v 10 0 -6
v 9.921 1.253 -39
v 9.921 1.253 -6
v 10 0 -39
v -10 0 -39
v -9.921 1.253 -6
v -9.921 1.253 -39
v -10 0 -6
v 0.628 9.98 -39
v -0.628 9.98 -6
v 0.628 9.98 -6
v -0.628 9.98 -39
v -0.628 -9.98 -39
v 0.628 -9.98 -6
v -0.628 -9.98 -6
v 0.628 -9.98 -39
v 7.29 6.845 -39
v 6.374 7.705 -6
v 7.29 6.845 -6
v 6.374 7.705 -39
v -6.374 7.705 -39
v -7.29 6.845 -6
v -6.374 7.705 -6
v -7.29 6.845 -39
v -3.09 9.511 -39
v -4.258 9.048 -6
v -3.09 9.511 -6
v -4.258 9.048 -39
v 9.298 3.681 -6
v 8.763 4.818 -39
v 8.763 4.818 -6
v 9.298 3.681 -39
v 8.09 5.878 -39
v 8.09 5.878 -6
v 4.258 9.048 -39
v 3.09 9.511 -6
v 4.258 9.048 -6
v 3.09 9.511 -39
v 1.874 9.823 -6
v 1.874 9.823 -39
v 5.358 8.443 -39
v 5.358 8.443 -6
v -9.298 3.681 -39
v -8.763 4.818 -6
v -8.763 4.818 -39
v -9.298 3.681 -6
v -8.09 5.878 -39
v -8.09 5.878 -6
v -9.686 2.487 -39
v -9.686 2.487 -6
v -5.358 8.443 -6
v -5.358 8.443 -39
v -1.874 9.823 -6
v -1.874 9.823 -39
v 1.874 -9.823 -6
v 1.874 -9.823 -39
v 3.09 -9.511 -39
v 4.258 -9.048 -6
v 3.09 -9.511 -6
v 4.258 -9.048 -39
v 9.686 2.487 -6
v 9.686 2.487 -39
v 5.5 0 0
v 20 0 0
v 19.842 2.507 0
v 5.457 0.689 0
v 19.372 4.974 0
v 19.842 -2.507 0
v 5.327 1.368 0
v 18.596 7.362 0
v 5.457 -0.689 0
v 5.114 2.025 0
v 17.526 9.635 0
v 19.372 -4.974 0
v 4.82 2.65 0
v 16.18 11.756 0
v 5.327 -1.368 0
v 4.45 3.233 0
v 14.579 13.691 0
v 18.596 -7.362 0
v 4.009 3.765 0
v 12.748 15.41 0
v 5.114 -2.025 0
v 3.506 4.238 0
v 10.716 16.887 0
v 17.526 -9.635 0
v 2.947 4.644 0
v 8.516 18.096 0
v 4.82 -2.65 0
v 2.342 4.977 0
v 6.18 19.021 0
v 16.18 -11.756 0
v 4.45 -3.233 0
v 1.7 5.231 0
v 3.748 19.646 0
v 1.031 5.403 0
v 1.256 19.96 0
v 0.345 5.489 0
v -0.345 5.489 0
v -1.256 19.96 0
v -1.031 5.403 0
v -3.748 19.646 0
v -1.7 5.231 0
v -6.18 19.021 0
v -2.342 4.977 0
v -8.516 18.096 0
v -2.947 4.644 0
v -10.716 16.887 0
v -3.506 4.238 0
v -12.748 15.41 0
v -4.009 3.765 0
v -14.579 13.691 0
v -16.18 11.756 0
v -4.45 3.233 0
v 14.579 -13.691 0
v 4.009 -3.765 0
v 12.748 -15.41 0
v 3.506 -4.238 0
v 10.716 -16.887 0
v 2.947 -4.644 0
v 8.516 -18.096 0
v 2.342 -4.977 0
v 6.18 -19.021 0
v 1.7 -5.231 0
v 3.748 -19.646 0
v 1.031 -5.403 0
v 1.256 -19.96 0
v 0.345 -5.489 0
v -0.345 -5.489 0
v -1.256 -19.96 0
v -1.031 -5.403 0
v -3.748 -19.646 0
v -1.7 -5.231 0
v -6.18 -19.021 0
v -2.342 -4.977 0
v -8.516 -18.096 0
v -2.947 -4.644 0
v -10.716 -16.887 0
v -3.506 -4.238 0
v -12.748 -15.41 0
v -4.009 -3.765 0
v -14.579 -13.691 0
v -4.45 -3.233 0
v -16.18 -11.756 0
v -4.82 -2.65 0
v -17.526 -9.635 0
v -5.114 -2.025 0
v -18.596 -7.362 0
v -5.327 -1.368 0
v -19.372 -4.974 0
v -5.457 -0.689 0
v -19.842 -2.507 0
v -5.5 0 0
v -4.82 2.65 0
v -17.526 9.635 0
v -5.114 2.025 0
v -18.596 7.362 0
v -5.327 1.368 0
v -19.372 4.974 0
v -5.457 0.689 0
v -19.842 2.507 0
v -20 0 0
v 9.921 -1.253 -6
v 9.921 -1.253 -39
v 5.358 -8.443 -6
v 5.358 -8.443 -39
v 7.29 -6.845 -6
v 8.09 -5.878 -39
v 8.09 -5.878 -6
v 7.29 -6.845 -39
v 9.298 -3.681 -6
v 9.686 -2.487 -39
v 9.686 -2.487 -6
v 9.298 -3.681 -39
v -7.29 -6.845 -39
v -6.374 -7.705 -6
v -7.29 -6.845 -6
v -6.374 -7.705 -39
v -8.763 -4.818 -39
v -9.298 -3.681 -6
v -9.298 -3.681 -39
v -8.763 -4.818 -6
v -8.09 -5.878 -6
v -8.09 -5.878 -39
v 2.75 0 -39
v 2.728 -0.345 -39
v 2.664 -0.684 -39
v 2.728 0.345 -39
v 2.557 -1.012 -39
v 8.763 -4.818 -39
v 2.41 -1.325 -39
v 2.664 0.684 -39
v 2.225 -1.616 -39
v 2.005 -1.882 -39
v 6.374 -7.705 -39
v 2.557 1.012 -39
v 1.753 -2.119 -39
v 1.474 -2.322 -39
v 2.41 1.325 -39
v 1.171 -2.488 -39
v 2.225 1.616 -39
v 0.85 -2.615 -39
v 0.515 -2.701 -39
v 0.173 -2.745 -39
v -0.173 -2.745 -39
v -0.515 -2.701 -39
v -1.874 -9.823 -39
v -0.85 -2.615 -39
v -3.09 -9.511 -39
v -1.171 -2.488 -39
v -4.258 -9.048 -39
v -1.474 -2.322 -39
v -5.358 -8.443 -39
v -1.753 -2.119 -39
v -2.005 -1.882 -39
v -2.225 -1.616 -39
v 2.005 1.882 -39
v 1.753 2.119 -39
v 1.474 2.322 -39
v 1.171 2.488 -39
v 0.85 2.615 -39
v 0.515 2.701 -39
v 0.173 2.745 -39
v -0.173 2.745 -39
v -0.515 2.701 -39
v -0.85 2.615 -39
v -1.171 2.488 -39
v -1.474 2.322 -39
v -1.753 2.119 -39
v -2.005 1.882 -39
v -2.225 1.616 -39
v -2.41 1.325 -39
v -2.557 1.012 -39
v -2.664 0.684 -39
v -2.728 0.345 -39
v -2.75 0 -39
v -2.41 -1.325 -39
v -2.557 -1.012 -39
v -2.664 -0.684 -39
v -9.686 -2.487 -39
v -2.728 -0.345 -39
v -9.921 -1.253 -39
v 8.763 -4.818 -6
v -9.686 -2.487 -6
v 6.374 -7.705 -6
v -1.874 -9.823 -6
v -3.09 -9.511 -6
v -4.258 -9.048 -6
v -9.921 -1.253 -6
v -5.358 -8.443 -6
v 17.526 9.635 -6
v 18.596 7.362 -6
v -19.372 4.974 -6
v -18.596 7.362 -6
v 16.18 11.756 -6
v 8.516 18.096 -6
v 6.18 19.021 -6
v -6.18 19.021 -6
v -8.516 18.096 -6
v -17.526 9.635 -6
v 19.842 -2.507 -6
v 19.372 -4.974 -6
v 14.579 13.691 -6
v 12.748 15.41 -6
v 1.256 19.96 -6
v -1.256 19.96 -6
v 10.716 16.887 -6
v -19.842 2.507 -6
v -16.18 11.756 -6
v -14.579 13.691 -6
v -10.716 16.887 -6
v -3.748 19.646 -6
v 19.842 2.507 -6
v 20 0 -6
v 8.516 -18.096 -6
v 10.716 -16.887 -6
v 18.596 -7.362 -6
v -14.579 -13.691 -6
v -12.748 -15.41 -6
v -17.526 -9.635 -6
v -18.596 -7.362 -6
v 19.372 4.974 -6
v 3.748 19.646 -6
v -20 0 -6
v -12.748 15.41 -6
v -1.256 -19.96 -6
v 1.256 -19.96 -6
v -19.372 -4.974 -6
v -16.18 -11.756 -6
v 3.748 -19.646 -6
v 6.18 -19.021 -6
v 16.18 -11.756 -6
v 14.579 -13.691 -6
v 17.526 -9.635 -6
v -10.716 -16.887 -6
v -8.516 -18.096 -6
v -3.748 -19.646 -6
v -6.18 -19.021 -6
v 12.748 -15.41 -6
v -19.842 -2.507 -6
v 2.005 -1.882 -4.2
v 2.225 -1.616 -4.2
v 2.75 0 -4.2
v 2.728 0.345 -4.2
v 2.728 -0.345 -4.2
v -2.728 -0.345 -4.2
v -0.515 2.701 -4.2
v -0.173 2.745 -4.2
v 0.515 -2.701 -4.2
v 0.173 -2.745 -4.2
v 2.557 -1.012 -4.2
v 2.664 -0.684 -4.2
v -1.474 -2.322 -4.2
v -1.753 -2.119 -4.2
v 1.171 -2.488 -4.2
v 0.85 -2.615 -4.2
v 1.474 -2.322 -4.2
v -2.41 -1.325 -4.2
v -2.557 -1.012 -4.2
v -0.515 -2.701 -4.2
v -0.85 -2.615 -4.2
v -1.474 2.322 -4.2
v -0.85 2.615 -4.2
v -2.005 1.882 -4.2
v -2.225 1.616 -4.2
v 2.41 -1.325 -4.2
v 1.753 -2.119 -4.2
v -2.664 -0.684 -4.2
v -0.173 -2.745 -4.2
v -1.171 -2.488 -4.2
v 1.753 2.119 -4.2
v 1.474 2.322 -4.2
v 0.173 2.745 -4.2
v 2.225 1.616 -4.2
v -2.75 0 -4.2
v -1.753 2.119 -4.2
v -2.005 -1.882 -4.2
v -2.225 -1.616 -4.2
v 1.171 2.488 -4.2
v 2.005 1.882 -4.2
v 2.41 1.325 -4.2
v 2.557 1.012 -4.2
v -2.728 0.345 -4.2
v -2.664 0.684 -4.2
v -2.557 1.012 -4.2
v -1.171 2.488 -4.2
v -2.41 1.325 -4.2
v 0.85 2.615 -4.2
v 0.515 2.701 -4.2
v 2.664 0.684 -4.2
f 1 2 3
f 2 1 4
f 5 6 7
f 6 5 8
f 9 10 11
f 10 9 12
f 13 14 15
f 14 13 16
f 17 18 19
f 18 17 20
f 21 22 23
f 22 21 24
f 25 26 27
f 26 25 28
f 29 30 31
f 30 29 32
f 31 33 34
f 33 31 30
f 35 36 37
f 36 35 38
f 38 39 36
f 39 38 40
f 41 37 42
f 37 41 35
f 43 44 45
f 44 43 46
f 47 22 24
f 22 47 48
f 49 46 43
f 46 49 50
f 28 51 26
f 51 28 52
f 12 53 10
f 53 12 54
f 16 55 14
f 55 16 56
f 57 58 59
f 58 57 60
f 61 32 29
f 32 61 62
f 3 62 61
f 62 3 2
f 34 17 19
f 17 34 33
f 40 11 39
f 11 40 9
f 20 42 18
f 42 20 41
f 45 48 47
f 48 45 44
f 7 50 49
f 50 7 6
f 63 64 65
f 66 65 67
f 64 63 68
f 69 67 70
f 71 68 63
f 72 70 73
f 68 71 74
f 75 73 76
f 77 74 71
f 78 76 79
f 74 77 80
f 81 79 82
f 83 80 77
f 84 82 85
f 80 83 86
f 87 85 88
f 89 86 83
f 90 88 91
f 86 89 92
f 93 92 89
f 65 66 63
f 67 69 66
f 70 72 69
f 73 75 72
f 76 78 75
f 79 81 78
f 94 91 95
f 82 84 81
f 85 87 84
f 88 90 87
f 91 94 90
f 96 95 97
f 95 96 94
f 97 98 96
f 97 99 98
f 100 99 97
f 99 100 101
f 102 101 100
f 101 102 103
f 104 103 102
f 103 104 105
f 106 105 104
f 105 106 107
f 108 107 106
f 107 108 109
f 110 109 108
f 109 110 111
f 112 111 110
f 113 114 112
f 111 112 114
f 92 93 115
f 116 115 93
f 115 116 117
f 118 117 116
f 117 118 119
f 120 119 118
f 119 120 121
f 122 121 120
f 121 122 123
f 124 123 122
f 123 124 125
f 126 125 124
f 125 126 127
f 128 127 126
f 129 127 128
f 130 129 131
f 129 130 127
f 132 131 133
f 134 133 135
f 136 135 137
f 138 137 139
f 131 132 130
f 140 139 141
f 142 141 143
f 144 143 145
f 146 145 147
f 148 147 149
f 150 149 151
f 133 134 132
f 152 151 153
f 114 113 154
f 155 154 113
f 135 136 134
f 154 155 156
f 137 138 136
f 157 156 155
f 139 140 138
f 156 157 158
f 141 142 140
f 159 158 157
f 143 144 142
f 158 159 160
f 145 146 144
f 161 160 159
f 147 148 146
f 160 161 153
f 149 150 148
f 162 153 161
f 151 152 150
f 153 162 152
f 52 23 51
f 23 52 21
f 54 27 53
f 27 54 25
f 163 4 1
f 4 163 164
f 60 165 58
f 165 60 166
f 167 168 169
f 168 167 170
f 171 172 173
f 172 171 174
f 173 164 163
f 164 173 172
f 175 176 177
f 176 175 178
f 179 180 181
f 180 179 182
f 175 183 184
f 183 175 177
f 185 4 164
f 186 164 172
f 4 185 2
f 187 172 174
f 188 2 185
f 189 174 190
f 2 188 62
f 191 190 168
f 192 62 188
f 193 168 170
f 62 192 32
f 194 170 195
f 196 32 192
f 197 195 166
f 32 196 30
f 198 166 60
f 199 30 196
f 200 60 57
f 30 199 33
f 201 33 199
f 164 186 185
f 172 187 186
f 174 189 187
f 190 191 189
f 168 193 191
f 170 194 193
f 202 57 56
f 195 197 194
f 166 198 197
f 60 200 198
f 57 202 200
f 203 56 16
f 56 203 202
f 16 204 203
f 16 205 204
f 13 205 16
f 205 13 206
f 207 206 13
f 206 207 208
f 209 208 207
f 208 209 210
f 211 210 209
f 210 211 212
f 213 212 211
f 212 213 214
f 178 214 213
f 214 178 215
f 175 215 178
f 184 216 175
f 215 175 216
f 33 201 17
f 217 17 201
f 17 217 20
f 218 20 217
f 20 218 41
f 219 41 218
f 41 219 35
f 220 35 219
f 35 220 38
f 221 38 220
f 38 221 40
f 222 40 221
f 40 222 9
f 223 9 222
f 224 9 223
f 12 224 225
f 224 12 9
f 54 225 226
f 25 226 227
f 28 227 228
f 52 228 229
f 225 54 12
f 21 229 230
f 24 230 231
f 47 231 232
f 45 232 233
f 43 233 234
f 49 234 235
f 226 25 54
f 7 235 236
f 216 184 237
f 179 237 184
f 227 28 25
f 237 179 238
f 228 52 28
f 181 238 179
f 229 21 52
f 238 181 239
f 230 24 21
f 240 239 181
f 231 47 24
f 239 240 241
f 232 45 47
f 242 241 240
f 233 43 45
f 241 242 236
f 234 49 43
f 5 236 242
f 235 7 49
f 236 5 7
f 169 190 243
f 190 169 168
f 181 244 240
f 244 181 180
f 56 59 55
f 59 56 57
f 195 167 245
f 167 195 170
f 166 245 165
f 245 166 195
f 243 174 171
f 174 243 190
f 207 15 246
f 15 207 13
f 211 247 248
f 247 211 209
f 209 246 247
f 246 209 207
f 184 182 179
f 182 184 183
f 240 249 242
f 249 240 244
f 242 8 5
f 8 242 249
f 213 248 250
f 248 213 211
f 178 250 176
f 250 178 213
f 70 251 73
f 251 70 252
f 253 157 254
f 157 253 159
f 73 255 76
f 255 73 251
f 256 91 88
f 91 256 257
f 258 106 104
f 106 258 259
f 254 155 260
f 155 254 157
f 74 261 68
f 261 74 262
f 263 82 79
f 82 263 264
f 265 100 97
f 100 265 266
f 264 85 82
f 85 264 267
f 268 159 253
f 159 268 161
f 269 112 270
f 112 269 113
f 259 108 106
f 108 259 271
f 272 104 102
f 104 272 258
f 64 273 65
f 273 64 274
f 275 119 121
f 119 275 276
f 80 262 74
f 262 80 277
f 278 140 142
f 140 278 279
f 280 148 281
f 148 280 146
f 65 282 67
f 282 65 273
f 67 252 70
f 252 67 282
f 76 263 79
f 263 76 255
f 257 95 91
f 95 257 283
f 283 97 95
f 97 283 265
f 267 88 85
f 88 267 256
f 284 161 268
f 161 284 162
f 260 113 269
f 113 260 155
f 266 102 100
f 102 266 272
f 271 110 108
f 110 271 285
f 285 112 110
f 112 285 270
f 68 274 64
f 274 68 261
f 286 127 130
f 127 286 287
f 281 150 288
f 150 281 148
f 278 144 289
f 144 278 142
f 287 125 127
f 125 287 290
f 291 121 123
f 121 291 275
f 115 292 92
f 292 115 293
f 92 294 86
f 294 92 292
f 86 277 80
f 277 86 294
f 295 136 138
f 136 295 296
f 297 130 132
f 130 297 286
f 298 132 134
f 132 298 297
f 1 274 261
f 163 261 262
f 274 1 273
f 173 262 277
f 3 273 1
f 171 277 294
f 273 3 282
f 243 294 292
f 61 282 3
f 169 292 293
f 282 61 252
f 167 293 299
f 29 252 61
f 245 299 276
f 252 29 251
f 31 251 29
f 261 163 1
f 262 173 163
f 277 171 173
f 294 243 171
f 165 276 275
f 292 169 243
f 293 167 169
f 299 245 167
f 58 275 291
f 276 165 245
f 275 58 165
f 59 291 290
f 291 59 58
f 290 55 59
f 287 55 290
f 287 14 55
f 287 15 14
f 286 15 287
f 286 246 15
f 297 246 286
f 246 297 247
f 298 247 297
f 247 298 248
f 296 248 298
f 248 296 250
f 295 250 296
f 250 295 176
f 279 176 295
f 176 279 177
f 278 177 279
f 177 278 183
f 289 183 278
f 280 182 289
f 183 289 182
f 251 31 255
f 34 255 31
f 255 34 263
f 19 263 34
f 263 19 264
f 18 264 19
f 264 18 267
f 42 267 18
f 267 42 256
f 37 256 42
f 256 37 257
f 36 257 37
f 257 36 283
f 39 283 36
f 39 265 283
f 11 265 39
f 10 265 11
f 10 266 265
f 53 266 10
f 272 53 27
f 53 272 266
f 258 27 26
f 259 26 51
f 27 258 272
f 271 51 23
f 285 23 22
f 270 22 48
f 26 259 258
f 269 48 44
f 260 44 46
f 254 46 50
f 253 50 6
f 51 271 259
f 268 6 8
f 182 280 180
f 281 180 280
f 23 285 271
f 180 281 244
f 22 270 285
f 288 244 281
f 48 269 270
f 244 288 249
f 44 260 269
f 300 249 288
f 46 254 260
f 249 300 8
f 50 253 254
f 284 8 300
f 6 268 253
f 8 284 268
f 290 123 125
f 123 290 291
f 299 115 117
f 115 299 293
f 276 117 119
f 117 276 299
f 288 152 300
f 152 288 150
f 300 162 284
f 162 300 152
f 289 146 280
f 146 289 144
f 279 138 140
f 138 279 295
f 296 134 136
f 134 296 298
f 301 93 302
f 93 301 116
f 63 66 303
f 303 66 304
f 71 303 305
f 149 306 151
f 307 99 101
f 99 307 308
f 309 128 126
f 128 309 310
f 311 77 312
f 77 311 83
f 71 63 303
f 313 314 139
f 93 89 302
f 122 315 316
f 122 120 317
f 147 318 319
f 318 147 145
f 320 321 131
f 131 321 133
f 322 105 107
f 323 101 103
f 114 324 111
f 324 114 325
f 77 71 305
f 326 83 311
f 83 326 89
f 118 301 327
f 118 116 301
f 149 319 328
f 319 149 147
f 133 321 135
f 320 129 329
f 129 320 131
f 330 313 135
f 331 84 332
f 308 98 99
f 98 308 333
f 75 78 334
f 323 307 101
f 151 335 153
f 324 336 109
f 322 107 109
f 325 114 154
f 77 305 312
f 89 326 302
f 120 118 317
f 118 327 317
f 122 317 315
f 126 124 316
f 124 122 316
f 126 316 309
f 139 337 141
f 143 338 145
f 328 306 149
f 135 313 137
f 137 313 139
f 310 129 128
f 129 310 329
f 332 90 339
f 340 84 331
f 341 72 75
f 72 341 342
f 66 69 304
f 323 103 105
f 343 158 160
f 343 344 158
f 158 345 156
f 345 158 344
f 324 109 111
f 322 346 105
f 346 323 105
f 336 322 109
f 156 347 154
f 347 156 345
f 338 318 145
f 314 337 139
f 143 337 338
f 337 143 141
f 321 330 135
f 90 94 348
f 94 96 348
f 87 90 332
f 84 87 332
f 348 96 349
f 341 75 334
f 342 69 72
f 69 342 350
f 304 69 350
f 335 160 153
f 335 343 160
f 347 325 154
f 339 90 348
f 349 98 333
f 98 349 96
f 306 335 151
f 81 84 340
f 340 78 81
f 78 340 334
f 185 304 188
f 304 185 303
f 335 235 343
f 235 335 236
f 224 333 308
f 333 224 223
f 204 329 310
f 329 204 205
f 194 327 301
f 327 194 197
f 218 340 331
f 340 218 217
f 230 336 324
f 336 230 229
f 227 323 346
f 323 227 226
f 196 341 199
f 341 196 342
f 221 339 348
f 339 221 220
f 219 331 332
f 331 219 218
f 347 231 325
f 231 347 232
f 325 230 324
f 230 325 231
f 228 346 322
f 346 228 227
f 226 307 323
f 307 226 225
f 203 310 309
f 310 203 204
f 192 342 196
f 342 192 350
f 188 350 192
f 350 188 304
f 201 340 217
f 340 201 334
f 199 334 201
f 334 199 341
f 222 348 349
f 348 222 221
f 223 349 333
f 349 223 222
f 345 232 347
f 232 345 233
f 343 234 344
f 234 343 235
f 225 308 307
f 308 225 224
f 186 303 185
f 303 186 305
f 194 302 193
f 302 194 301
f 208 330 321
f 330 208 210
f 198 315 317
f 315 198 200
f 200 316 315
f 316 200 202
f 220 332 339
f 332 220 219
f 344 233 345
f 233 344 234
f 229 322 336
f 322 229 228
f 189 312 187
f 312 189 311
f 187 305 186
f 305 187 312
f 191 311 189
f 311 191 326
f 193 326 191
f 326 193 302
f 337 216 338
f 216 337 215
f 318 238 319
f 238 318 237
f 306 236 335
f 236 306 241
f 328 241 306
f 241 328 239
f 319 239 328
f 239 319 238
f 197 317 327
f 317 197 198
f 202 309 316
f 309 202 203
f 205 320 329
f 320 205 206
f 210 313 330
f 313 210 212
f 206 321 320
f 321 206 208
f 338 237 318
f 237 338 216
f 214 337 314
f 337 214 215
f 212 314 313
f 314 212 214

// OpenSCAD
$fn = 50;


difference() {
	union() {
		translate(v = [0, 0, -39.0000000000]) {
			cylinder(h = 39, r = 10.0000000000);
		}
		translate(v = [0, 0, -6.0000000000]) {
			cylinder(h = 6, r = 20.0000000000);
		}
	}
	union() {
		translate(v = [0, 0, 0]) {
			rotate(a = [0, 0, 0]) {
				difference() {
					union() {
						#translate(v = [0, 0, -39.0000000000]) {
							cylinder(h = 39, r = 2.2500000000);
						}
						#translate(v = [0, 0, -4.2000000000]) {
							cylinder(h = 4.2000000000, r1 = 2.7500000000, r2 = 5.5000000000);
						}
						#translate(v = [0, 0, -39.0000000000]) {
							cylinder(h = 39, r = 2.7500000000);
						}
						#translate(v = [0, 0, -39.0000000000]) {
							cylinder(h = 39, r = 2.2500000000);
						}
					}
					union();
				}
			}
		}
	}
}
